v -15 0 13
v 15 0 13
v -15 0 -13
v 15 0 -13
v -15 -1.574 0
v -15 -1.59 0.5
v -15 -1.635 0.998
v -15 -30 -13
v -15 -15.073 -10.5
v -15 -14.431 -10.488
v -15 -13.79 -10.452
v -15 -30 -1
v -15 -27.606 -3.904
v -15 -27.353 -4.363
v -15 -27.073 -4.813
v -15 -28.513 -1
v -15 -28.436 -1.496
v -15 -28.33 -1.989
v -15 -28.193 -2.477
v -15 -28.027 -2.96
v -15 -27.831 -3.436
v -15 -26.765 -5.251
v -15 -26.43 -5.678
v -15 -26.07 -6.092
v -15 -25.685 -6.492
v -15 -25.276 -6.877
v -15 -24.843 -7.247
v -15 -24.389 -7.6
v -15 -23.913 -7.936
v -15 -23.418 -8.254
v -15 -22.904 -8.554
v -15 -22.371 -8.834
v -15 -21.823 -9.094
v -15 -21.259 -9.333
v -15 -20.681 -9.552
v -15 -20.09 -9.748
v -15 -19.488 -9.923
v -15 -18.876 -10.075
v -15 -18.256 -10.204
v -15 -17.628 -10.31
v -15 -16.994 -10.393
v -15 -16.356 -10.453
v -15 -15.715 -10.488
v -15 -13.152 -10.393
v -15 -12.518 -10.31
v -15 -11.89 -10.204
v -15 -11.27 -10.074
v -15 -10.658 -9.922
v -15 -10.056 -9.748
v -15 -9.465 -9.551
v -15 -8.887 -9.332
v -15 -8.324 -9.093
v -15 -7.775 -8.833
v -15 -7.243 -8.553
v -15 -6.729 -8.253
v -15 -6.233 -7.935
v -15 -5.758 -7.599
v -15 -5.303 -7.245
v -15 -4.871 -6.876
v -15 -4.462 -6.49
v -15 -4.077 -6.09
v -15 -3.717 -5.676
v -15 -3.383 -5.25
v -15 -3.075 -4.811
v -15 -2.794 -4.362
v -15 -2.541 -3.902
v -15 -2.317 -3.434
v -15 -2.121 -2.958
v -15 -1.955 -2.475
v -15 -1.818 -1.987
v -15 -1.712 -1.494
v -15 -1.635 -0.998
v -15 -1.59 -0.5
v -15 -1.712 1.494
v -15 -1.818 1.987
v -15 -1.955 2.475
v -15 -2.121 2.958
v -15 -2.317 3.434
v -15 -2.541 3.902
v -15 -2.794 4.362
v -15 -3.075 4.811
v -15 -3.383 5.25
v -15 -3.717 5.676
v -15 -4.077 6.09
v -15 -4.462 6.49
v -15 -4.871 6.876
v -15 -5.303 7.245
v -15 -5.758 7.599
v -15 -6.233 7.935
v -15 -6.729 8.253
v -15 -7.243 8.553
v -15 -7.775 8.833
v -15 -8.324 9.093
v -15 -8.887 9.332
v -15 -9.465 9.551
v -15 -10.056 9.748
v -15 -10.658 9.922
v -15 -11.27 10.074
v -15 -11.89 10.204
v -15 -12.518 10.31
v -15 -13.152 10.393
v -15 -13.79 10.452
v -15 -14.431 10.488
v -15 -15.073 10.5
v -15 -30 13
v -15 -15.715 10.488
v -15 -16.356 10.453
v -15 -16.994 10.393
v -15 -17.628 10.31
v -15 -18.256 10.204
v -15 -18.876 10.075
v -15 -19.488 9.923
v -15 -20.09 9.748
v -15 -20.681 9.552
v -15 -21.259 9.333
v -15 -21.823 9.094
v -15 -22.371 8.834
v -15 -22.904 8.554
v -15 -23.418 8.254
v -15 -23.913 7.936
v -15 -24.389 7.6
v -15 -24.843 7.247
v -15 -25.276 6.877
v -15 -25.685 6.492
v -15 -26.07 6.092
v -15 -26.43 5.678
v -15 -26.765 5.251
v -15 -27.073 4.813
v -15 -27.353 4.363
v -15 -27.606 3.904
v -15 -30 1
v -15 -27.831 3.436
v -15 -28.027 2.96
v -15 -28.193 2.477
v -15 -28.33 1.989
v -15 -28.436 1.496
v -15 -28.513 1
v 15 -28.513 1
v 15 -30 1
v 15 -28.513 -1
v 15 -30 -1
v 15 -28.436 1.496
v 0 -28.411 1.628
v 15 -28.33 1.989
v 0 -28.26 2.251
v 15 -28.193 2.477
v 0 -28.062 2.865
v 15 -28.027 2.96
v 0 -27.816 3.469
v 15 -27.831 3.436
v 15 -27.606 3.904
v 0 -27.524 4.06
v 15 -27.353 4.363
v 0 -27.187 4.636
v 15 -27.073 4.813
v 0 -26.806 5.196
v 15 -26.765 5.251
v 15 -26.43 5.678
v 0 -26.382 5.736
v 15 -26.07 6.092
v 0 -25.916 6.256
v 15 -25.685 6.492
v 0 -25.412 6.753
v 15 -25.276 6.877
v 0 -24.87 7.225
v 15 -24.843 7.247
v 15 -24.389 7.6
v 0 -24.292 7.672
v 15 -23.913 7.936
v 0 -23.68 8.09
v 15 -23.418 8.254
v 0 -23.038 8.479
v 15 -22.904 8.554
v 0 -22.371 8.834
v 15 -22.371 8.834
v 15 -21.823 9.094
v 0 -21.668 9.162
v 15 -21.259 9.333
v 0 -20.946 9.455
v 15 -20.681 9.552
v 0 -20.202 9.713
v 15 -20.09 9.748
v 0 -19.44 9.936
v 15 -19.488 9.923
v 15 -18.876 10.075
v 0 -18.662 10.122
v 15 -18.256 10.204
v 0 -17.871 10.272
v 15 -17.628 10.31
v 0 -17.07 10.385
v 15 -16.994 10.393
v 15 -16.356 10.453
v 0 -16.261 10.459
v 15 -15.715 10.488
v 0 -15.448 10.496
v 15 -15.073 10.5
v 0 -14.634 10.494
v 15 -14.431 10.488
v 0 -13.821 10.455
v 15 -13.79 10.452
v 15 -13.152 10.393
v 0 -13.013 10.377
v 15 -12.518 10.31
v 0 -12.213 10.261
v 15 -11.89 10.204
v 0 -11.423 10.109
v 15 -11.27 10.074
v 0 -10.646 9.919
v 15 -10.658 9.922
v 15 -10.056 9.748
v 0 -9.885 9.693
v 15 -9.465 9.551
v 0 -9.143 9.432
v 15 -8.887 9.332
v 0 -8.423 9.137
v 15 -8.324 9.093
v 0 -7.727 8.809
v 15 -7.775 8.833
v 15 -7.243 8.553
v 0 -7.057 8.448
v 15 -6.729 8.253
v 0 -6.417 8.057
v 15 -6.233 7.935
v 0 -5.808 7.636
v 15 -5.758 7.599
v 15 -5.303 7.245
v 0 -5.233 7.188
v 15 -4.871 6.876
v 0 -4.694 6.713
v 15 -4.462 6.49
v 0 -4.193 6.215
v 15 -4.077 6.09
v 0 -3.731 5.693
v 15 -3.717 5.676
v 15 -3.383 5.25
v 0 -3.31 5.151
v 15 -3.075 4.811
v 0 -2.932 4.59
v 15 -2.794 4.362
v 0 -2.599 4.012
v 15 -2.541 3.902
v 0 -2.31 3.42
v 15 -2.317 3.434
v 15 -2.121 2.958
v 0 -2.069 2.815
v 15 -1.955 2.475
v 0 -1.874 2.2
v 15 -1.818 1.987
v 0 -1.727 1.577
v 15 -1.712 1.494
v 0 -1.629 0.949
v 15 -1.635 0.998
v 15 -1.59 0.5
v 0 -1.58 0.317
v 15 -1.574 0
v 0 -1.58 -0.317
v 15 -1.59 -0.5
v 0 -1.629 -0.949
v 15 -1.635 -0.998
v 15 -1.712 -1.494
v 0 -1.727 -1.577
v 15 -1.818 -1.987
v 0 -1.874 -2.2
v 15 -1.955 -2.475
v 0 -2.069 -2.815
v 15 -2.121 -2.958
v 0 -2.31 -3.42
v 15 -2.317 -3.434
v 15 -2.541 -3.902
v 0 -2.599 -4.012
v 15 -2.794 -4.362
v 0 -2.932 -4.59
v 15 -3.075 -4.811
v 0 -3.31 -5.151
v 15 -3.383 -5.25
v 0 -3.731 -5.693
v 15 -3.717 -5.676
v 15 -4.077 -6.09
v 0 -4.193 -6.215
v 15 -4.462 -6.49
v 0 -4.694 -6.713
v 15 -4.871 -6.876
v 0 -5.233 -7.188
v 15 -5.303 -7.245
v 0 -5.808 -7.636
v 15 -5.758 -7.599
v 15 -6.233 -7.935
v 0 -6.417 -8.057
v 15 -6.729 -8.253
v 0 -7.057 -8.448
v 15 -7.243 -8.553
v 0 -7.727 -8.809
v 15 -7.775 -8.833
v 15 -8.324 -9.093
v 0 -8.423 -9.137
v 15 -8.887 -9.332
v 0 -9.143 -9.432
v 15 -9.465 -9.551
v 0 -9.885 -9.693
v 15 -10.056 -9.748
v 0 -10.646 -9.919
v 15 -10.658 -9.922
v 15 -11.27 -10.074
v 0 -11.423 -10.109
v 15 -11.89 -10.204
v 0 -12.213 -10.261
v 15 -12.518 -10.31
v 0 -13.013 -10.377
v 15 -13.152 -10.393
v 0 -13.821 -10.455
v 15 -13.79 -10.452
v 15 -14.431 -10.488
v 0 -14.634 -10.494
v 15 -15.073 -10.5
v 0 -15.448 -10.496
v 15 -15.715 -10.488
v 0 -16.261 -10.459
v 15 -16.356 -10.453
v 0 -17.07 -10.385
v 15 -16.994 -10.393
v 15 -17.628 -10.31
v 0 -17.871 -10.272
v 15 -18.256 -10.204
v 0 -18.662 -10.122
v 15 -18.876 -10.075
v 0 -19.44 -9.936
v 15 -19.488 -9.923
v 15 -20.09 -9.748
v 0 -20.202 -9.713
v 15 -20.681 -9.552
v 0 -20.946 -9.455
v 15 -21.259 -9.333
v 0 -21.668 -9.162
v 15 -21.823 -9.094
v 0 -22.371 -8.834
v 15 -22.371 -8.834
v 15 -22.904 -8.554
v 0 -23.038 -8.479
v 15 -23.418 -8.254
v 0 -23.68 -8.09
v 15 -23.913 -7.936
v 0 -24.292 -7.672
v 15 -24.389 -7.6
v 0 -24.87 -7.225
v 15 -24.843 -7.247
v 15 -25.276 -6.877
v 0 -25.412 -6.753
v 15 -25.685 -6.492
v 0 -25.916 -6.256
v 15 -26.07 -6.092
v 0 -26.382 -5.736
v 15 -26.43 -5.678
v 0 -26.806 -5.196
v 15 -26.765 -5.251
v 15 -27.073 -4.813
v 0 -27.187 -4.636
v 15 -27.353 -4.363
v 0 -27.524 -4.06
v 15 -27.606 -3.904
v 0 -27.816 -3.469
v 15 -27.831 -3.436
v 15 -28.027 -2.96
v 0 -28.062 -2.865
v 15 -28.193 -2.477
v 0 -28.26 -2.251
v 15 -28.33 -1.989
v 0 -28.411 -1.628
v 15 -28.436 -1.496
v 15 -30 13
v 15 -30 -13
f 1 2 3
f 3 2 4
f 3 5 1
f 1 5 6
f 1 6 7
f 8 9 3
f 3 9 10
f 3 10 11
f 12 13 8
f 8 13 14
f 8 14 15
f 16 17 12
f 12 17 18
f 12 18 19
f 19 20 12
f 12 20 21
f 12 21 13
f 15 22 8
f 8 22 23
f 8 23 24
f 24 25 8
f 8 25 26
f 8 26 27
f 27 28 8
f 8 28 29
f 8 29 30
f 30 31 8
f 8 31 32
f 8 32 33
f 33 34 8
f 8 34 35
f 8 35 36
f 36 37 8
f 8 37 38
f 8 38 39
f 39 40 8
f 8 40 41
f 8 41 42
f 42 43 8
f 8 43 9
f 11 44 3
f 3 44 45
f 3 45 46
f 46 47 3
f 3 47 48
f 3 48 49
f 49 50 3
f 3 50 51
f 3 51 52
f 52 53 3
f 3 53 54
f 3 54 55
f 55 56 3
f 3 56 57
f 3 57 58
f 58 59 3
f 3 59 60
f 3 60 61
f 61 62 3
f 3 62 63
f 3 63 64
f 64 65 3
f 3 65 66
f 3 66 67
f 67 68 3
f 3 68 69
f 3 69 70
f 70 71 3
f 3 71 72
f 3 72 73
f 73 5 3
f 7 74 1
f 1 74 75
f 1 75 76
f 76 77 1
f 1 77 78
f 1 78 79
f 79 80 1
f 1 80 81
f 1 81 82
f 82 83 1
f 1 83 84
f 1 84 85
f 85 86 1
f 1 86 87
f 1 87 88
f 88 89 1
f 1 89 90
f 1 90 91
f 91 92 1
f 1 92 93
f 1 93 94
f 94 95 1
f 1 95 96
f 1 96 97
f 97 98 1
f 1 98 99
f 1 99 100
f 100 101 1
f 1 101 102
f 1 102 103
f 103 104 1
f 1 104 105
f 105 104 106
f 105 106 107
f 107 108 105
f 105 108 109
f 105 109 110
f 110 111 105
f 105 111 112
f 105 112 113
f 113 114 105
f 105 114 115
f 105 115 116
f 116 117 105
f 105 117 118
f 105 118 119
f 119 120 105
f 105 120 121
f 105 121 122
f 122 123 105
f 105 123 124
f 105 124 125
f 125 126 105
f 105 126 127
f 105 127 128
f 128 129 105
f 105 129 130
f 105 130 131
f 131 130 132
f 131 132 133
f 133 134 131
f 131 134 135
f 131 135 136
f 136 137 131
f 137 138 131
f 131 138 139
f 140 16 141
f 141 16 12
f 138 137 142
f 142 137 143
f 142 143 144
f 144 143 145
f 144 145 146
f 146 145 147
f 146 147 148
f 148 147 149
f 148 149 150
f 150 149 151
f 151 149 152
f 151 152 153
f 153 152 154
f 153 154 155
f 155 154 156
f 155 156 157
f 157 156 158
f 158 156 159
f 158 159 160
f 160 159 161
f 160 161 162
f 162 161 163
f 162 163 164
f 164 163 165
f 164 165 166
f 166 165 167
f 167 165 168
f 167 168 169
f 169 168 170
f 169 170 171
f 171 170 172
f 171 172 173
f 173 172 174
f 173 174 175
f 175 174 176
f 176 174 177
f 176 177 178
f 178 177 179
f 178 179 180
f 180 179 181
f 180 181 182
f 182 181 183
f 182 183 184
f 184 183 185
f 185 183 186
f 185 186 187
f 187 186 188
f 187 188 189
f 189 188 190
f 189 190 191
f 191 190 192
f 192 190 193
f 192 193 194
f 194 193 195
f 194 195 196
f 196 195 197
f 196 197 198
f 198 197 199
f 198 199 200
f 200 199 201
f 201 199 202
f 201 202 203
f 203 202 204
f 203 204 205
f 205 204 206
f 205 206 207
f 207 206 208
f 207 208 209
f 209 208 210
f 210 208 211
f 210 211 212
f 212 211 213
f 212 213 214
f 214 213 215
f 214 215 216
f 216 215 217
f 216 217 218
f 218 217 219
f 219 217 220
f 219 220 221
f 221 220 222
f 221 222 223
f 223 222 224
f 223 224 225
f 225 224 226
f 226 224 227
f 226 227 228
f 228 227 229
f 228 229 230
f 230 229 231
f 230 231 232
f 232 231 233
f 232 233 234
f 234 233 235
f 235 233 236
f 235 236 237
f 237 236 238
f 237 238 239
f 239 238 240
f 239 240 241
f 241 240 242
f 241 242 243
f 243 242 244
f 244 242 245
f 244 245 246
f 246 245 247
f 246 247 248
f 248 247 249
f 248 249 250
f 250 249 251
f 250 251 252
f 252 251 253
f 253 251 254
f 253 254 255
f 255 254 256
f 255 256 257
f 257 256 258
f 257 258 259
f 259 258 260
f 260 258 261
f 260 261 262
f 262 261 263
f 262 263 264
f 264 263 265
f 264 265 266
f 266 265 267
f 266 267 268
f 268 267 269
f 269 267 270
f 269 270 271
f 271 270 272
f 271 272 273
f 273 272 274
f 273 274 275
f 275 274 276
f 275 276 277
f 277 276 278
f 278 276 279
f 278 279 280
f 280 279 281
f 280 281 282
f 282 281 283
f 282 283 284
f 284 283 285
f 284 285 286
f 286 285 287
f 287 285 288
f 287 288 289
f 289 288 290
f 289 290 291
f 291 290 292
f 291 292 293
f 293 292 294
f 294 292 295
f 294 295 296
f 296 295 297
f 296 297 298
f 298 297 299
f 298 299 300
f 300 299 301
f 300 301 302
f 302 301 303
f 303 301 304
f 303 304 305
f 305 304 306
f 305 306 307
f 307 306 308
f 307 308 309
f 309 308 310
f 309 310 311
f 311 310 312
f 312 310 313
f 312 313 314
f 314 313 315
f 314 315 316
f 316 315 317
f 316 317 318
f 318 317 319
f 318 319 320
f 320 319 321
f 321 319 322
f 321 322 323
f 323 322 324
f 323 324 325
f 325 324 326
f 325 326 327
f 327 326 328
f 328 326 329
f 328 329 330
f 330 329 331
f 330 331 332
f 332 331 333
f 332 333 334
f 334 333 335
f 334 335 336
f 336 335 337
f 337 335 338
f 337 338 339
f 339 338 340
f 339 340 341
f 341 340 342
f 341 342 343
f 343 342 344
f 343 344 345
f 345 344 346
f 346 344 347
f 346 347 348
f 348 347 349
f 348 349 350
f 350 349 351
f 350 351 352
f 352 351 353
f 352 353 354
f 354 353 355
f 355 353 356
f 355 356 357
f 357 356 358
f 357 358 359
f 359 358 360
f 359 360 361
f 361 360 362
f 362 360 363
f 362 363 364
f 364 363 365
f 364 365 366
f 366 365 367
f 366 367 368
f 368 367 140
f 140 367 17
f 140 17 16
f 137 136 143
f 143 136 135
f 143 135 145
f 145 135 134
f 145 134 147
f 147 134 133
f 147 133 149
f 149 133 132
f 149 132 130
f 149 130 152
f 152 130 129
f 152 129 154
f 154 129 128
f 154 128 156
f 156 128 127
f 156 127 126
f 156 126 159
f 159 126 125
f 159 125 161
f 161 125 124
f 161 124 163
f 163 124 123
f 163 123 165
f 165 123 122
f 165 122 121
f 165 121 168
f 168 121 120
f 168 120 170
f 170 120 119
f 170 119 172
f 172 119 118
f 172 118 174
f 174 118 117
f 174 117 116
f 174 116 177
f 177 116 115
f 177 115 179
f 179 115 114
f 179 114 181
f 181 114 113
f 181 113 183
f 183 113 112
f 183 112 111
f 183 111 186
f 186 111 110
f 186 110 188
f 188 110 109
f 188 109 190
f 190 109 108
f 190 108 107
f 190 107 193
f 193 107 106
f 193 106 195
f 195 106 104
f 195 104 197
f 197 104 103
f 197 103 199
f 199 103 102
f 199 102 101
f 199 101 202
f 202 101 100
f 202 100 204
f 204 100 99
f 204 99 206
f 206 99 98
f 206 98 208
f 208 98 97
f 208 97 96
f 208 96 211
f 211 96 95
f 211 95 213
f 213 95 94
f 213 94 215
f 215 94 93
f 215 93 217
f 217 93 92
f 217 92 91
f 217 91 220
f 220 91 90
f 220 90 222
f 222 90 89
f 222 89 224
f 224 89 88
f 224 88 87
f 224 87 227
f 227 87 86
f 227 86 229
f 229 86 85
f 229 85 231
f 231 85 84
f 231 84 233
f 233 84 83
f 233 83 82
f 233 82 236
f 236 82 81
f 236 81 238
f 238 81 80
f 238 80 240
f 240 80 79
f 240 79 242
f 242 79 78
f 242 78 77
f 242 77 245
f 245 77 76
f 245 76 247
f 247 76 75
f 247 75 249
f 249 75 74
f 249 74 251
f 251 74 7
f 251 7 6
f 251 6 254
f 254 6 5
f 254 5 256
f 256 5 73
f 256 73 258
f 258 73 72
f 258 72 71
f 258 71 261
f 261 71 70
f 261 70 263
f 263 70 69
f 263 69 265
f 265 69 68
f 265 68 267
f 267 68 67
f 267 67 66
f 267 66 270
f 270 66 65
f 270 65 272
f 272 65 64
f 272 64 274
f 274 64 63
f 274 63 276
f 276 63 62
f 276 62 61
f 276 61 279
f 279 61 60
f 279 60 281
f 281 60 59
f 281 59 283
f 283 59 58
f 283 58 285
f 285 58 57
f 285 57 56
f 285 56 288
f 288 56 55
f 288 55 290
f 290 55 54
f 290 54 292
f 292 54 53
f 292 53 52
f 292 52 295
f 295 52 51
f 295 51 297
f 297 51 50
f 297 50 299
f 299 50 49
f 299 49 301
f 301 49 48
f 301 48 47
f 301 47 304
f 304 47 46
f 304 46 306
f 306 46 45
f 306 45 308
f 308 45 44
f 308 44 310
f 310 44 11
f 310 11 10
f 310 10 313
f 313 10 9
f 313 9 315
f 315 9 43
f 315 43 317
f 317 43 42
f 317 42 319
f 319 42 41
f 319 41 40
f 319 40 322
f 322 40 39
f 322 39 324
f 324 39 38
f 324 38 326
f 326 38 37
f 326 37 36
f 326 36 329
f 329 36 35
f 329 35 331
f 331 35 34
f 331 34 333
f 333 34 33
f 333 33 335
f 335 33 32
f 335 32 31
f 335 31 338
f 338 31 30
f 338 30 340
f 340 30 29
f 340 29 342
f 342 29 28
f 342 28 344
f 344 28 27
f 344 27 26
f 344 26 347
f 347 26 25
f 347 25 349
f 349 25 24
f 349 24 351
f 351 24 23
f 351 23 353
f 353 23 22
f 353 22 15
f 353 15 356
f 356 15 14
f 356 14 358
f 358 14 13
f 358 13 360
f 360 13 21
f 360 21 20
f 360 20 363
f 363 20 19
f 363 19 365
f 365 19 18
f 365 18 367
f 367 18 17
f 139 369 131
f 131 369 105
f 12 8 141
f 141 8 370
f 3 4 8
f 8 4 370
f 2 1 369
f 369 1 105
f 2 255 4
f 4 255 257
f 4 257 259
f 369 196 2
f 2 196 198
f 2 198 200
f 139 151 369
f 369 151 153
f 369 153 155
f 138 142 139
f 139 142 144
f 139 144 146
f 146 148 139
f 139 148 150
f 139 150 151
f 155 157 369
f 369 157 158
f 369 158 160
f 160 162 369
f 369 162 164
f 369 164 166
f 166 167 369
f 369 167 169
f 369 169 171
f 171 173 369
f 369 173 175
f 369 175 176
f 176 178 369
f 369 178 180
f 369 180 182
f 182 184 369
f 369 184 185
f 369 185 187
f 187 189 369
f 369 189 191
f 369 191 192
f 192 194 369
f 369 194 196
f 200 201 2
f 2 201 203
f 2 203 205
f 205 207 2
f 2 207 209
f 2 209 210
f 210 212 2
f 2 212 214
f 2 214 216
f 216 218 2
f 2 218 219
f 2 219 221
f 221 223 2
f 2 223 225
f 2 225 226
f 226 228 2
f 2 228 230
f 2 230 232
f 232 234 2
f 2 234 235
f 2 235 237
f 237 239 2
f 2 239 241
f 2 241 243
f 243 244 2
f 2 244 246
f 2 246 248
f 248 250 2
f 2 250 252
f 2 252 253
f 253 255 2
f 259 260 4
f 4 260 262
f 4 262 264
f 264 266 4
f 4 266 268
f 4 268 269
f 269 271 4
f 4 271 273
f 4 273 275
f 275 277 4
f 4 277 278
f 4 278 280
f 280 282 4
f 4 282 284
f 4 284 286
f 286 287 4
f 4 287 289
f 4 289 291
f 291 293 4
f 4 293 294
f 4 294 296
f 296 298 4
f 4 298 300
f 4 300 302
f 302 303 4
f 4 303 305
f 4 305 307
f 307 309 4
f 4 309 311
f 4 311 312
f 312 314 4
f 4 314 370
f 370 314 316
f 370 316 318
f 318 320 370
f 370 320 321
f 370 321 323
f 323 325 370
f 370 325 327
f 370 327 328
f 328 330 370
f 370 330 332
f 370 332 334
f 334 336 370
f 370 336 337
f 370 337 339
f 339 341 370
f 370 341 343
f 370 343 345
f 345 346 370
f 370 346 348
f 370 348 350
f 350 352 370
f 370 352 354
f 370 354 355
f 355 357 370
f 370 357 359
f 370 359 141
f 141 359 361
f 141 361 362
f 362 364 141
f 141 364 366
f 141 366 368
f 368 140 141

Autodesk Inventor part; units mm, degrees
ref_plane "YZ Plane" through (0, 0, 0) normal (1, 0, 0) x (0, 1, 0)
ref_plane "XZ Plane" through (0, 0, 0) normal (0, 1, 0) x (-1, 0, 0)
ref_plane "XY Plane" through (0, 0, 0) normal (0, 0, 1) x (1, 0, 0)
sketch "BaseSC" plane through (0, 0, 0) normal (0, 1, 0) x (-1, 0, 0)
  line L0 (15, 13) -> (-15, 13)
  line L1 (-15, 13) -> (-15, -13)
  line L2 (-15, -13) -> (15, -13)
  line L3 (15, -13) -> (15, 13)
  line L4 (15, 13) -> (-15, -13) construction
  line L5 (-15, 13) -> (15, -13) construction
  line L6 (15, 13) -> (14.1667, 17.9301)
  line L7 (14.1667, 17.9301) -> (-15, 13)
  line L8 (0, 0) -> (8.3423, 0)
  line L9 (15, -13) -> (14.1667, -17.9301)
  line L10 (14.1667, -17.9301) -> (-15, -13)
  line L11 (-15, 13) -> (-14.1667, 17.9301)
  line L12 (-14.1667, 17.9301) -> (15, 13)
  dimension "d0" = 30
  dimension "d1" = 26
  dimension "d9" = 5
  dimension "d10" = 90
  dimension "d17" = 5
  dimension "d18" = 90
sketch "スケッチ2" plane through (0, 0, 0) normal (0, 0, 1) x (1, 0, 0)
  point P0 (0, 0)
extrude "押し出し1" add sketch "BaseSC" against normal blind 30 contours L3 L2 L1 L0
sketch "スケッチ3" plane through (15, 0, 13) normal (1, 0, 0) x (0, 0, -1)
  line L0 (2.5, -1.5742) -> (23.5, -1.5742)
  line L1 (23.5, -1.5742) -> (23.5, -28.5742)
  line L2 (23.5, -28.5742) -> (2.5, -28.5742)
  line L3 (2.5, -28.5742) -> (2.5, -1.5742)
  line L4 (2.5, -1.5742) -> (23.5, -28.5742) construction
  line L5 (23.5, -1.5742) -> (2.5, -28.5742) construction
  ellipse E0 centre (13, -15.0742) end of major axis (23.5, -15.0742) minor radius 13.5
  point P0 (13, 0)
  dimension "d5" = 21
  dimension "d6" = 27
extrude "押し出し2" cut sketch "スケッチ3" against normal through all contours E0
extrude "押し出し3" add sketch "BaseSC" along normal blind 36 contours L3 L2 L1 L0 | L9 L10 L2
extrude "押し出し5" add sketch "BaseSC" along normal blind 36 contours L0 L7 L12 | L11 L12 L7
sketch "スケッチ5" plane through (-14.1667, 0, -17.9301) normal (0.1666667, 0, -0.9860133) x (-0.9860133, 0, -0.1666667)
  circle A0 centre (-14.1422, 25) radius 5.3
  line L0 (-29.5804, 0) -> (0, 0) projected
  point P0 (-16.9569, 0)
  dimension "d21" = 10.6
  dimension "d22" = 25
extrude "押し出し6" cut sketch "スケッチ5" against normal through all
sketch "スケッチ6" plane through (0, -30, 0) normal (0, -1, 0) x (1, 0, 0)
  line L0 (15, -1) -> (-15, -1)
  line L1 (-15, -1) -> (-15, 1)
  line L2 (-15, 1) -> (15, 1)
  line L3 (15, 1) -> (15, -1)
  line L4 (15, -1) -> (-15, 1) construction
  line L5 (-15, -1) -> (15, 1) construction
  point P0 (0, 0)
  dimension "d25" = 30
  dimension "d26" = 2
extrude "押し出し7" cut sketch "スケッチ6" against normal blind 5
fillet "フィレット1" radius 10 2 edges at (15, 36, 0) (-15, 36, 0)
sketch "スケッチ7" plane through (-14.1667, 0, -17.9301) normal (0.1666667, 0, -0.9860133) x (-0.9860133, 0, -0.1666667)
  circle A0 centre (-14.1422, 25) radius 5.3 projected
  ellipse E0 centre (-9.2967, 26) end of major axis (0.8452, 26) minor radius 10 (0, 29.9965) -> (-9.2967, 36) ccw projected
  line L0 (-19.4385, 36) -> (-9.2967, 36) projected
  ellipse E1 centre (-19.4385, 26) end of major axis (-29.5804, 26) minor radius 10 (-19.4385, 36) -> (-29.5804, 26) ccw projected
  line L1 (-29.5804, 0) -> (-29.5804, 26) projected
  line L2 (-29.5804, 0) -> (0, 0) projected
  line L3 (0, 0) -> (0, 29.9965) projected
  point P0 (-16.9569, 0)
extrude "押し出し8" cut sketch "スケッチ7" against normal through all
sketch "スケッチ8" plane through (14.1667, 0, 17.9301) normal (-0.1666667, 0, 0.9860133) x (0.9860133, 0, 0.1666667)
  line L0 (-4.3333, 26) -> (-4.3333, 0) projected
  line L1 (-4.3333, 0) -> (0, 0) projected
  line L2 (0, 0) -> (0, 29.9965) projected
  ellipse E0 centre (-9.2967, 26) end of major axis (0.8452, 26) minor radius 10 (0, 29.9965) -> (-9.2967, 36) ccw projected
  line L3 (-14.4752, 36) -> (-9.2967, 36) projected
  ellipse E1 centre (-14.4752, 26) end of major axis (-4.3333, 26) minor radius 10 (-4.3333, 26) -> (-14.4752, 36) ccw projected
  point P0 (-16.9569, 0)
extrude "押し出し9" cut sketch "スケッチ8" against normal through all
properties part number "default"
